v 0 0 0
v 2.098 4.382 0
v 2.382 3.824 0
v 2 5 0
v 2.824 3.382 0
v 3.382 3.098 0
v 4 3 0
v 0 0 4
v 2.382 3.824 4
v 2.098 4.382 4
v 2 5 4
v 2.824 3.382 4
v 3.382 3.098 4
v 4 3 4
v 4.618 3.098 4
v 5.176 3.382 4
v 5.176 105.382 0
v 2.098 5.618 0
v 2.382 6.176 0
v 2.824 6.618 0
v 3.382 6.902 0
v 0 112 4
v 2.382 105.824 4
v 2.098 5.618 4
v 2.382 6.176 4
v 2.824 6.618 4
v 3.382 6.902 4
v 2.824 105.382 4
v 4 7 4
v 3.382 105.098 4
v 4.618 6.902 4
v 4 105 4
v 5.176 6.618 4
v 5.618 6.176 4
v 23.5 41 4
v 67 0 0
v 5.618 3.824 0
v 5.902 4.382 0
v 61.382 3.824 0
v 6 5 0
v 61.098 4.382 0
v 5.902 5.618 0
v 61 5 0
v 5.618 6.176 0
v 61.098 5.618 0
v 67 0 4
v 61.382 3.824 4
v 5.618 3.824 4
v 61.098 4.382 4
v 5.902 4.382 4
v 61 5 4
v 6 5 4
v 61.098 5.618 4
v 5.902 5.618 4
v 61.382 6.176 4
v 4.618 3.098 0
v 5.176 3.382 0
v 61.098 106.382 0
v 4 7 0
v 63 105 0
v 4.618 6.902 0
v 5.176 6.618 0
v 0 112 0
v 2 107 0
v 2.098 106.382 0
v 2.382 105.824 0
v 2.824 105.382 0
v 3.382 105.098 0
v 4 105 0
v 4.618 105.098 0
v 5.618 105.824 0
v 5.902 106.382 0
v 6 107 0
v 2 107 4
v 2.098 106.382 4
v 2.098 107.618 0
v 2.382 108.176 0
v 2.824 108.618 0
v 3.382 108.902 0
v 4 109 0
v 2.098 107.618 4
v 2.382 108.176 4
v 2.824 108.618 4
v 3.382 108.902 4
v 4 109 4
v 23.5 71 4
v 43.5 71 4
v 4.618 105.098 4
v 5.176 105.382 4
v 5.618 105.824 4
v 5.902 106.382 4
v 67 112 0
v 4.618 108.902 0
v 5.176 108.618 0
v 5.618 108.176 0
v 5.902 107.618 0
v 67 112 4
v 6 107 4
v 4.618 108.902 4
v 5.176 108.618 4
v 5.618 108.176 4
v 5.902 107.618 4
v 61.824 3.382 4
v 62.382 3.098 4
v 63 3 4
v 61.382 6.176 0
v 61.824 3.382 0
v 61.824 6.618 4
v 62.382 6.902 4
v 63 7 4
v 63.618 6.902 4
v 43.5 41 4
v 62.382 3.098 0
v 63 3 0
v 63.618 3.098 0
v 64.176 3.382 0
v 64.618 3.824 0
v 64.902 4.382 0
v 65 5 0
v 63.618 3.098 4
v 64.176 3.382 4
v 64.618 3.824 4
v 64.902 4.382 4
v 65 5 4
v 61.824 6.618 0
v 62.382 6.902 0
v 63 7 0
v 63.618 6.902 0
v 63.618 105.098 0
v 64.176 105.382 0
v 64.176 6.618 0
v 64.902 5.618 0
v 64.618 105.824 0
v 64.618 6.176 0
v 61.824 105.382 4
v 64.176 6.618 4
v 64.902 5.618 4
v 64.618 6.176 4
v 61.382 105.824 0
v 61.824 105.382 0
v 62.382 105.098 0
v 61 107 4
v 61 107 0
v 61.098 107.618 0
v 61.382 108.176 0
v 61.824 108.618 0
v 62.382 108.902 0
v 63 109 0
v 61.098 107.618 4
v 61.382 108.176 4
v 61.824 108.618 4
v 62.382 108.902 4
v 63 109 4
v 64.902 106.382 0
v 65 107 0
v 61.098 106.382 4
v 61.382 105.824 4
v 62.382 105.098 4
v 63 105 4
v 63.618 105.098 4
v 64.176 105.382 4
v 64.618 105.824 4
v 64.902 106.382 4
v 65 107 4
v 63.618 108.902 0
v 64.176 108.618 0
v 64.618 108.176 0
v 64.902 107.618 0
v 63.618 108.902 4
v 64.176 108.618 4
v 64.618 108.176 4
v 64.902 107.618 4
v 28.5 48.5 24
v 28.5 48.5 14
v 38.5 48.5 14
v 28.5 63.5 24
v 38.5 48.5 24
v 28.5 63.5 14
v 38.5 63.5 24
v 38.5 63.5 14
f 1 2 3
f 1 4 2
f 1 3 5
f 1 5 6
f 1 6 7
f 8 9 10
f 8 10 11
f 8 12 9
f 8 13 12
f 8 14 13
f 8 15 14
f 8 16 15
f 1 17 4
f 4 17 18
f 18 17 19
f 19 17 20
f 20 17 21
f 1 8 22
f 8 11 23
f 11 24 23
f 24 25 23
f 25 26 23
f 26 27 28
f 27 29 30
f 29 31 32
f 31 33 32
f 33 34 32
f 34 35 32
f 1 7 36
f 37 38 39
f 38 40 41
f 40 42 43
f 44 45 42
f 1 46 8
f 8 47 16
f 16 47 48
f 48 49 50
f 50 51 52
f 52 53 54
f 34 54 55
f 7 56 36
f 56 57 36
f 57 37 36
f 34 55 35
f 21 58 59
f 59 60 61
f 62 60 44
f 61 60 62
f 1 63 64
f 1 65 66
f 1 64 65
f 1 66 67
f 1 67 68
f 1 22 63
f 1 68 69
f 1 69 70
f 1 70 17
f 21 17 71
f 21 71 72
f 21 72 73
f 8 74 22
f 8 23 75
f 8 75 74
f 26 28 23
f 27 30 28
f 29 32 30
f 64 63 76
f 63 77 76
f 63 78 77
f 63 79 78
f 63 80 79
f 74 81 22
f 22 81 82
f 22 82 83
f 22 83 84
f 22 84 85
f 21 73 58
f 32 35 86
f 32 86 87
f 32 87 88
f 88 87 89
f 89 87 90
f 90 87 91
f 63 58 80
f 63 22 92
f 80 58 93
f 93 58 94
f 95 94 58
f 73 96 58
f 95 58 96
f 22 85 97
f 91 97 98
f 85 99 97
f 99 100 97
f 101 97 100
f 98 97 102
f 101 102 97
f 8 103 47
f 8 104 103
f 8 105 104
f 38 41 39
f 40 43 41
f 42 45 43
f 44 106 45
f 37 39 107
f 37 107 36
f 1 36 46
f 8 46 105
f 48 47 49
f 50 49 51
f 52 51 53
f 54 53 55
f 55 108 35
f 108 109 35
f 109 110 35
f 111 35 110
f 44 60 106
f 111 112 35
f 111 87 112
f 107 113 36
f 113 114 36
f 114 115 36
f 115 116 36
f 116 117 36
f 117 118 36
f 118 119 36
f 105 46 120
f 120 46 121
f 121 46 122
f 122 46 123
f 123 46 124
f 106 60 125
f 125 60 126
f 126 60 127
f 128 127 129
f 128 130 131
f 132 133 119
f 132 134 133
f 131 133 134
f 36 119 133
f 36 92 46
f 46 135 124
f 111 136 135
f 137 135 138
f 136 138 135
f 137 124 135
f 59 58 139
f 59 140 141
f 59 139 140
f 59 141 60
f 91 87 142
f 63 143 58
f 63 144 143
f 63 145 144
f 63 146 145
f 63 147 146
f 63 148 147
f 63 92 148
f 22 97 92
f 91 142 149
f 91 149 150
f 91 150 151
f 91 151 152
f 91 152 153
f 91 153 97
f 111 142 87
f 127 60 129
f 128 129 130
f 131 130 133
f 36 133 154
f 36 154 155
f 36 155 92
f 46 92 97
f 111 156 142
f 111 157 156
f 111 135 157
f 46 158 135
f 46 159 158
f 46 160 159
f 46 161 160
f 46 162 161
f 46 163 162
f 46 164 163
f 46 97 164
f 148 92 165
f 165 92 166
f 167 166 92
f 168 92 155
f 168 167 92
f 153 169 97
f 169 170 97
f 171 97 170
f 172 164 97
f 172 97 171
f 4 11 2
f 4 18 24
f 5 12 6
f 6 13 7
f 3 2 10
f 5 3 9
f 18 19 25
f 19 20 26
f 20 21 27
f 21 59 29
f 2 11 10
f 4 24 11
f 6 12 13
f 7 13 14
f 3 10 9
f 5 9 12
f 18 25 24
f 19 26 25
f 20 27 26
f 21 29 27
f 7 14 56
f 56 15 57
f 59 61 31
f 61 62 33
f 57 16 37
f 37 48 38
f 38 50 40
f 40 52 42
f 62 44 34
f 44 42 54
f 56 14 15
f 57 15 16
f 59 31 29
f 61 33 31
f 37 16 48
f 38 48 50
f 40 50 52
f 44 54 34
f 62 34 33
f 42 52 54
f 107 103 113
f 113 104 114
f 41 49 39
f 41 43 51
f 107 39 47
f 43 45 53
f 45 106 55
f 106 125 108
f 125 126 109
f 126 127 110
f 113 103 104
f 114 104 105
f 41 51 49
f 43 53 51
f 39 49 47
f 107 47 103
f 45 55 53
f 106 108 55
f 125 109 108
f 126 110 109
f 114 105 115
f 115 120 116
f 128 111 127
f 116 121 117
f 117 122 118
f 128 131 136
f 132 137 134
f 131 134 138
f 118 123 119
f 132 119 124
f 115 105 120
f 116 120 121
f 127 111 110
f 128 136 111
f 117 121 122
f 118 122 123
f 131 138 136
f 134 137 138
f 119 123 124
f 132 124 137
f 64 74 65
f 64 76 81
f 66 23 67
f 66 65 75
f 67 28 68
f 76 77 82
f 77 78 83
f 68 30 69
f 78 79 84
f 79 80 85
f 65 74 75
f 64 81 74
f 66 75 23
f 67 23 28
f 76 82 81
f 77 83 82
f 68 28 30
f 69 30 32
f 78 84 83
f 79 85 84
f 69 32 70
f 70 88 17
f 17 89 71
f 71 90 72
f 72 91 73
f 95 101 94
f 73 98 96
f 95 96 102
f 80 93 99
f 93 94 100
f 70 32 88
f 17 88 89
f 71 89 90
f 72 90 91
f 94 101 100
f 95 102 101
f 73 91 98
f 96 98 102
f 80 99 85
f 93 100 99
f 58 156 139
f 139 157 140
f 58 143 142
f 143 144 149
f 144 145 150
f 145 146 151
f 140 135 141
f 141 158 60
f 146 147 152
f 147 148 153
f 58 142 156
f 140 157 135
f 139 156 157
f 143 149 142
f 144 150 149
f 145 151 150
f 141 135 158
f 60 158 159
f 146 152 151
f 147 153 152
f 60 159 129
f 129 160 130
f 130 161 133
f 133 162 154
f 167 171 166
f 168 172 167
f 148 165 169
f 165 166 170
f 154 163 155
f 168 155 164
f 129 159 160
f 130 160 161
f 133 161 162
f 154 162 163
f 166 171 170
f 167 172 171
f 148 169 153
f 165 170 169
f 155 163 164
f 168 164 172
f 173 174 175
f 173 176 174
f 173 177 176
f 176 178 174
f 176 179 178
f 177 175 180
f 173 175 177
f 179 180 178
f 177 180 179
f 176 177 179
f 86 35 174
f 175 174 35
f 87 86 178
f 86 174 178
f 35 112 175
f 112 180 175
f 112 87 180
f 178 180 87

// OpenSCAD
plateSurplusX = 4;
plateSurplusY = 5;

screwX = 59;
screwY = 102;
screwHoleRadius = 2;

plateX = plateSurplusX*2+screwX;
plateY = plateSurplusY*2+screwY;
plateZ = 4;

stickX = 10;
stickY = 15;
stickZ = 20;

$fn = 20;

difference(){
    cube([plateX,plateY,plateZ]);

    translate([plateSurplusX, plateSurplusY, -1])
    cylinder(h = plateZ+2, r = screwHoleRadius);
    
    translate([plateSurplusX+screwX, plateSurplusY, -1])
    cylinder(h = plateZ+2, r = screwHoleRadius);
	
    translate([plateSurplusX, plateSurplusY+screwY, -1])
    cylinder(h = plateZ+2, r = screwHoleRadius);
    
    translate([plateSurplusX+screwX, plateSurplusY+screwY, -1])
	cylinder(h = plateZ+2, r = screwHoleRadius);
}

translate([plateX/2, plateY/2, plateZ+stickZ/2])
cube([stickX,stickY,stickZ], center = true);

translate([plateX/2, plateY/2, plateZ])
ostroslup_prostokatny(stickX*2,stickY*2,20);

module ostroslup_prostokatny(szerokosc_x, dlugosc_y, wysokosc) {
    x = szerokosc_x / 2;
    y = dlugosc_y / 2;
    
    polyhedron(
        points = [
            [-x, -y, 0],  // 0: lewy dolny narożnik
            [ x, -y, 0],  // 1: prawy dolny narożnik
            [ x,  y, 0],  // 2: prawy górny narożnik
            [-x,  y, 0],  // 3: lewy górny narożnik
            [ 0,  0, wysokosc] // 4: czubek ostrosłupa
        ],
        faces = [
            [0, 1, 2, 3], // Podstawa (patrząc od dołu, zgodnie z ruchem wskazówek zegara)
            [1, 0, 4],    // Przód
            [2, 1, 4],    // Prawo
            [3, 2, 4],    // Tył
            [0, 3, 4]     // Lewo
        ]
    );
}
